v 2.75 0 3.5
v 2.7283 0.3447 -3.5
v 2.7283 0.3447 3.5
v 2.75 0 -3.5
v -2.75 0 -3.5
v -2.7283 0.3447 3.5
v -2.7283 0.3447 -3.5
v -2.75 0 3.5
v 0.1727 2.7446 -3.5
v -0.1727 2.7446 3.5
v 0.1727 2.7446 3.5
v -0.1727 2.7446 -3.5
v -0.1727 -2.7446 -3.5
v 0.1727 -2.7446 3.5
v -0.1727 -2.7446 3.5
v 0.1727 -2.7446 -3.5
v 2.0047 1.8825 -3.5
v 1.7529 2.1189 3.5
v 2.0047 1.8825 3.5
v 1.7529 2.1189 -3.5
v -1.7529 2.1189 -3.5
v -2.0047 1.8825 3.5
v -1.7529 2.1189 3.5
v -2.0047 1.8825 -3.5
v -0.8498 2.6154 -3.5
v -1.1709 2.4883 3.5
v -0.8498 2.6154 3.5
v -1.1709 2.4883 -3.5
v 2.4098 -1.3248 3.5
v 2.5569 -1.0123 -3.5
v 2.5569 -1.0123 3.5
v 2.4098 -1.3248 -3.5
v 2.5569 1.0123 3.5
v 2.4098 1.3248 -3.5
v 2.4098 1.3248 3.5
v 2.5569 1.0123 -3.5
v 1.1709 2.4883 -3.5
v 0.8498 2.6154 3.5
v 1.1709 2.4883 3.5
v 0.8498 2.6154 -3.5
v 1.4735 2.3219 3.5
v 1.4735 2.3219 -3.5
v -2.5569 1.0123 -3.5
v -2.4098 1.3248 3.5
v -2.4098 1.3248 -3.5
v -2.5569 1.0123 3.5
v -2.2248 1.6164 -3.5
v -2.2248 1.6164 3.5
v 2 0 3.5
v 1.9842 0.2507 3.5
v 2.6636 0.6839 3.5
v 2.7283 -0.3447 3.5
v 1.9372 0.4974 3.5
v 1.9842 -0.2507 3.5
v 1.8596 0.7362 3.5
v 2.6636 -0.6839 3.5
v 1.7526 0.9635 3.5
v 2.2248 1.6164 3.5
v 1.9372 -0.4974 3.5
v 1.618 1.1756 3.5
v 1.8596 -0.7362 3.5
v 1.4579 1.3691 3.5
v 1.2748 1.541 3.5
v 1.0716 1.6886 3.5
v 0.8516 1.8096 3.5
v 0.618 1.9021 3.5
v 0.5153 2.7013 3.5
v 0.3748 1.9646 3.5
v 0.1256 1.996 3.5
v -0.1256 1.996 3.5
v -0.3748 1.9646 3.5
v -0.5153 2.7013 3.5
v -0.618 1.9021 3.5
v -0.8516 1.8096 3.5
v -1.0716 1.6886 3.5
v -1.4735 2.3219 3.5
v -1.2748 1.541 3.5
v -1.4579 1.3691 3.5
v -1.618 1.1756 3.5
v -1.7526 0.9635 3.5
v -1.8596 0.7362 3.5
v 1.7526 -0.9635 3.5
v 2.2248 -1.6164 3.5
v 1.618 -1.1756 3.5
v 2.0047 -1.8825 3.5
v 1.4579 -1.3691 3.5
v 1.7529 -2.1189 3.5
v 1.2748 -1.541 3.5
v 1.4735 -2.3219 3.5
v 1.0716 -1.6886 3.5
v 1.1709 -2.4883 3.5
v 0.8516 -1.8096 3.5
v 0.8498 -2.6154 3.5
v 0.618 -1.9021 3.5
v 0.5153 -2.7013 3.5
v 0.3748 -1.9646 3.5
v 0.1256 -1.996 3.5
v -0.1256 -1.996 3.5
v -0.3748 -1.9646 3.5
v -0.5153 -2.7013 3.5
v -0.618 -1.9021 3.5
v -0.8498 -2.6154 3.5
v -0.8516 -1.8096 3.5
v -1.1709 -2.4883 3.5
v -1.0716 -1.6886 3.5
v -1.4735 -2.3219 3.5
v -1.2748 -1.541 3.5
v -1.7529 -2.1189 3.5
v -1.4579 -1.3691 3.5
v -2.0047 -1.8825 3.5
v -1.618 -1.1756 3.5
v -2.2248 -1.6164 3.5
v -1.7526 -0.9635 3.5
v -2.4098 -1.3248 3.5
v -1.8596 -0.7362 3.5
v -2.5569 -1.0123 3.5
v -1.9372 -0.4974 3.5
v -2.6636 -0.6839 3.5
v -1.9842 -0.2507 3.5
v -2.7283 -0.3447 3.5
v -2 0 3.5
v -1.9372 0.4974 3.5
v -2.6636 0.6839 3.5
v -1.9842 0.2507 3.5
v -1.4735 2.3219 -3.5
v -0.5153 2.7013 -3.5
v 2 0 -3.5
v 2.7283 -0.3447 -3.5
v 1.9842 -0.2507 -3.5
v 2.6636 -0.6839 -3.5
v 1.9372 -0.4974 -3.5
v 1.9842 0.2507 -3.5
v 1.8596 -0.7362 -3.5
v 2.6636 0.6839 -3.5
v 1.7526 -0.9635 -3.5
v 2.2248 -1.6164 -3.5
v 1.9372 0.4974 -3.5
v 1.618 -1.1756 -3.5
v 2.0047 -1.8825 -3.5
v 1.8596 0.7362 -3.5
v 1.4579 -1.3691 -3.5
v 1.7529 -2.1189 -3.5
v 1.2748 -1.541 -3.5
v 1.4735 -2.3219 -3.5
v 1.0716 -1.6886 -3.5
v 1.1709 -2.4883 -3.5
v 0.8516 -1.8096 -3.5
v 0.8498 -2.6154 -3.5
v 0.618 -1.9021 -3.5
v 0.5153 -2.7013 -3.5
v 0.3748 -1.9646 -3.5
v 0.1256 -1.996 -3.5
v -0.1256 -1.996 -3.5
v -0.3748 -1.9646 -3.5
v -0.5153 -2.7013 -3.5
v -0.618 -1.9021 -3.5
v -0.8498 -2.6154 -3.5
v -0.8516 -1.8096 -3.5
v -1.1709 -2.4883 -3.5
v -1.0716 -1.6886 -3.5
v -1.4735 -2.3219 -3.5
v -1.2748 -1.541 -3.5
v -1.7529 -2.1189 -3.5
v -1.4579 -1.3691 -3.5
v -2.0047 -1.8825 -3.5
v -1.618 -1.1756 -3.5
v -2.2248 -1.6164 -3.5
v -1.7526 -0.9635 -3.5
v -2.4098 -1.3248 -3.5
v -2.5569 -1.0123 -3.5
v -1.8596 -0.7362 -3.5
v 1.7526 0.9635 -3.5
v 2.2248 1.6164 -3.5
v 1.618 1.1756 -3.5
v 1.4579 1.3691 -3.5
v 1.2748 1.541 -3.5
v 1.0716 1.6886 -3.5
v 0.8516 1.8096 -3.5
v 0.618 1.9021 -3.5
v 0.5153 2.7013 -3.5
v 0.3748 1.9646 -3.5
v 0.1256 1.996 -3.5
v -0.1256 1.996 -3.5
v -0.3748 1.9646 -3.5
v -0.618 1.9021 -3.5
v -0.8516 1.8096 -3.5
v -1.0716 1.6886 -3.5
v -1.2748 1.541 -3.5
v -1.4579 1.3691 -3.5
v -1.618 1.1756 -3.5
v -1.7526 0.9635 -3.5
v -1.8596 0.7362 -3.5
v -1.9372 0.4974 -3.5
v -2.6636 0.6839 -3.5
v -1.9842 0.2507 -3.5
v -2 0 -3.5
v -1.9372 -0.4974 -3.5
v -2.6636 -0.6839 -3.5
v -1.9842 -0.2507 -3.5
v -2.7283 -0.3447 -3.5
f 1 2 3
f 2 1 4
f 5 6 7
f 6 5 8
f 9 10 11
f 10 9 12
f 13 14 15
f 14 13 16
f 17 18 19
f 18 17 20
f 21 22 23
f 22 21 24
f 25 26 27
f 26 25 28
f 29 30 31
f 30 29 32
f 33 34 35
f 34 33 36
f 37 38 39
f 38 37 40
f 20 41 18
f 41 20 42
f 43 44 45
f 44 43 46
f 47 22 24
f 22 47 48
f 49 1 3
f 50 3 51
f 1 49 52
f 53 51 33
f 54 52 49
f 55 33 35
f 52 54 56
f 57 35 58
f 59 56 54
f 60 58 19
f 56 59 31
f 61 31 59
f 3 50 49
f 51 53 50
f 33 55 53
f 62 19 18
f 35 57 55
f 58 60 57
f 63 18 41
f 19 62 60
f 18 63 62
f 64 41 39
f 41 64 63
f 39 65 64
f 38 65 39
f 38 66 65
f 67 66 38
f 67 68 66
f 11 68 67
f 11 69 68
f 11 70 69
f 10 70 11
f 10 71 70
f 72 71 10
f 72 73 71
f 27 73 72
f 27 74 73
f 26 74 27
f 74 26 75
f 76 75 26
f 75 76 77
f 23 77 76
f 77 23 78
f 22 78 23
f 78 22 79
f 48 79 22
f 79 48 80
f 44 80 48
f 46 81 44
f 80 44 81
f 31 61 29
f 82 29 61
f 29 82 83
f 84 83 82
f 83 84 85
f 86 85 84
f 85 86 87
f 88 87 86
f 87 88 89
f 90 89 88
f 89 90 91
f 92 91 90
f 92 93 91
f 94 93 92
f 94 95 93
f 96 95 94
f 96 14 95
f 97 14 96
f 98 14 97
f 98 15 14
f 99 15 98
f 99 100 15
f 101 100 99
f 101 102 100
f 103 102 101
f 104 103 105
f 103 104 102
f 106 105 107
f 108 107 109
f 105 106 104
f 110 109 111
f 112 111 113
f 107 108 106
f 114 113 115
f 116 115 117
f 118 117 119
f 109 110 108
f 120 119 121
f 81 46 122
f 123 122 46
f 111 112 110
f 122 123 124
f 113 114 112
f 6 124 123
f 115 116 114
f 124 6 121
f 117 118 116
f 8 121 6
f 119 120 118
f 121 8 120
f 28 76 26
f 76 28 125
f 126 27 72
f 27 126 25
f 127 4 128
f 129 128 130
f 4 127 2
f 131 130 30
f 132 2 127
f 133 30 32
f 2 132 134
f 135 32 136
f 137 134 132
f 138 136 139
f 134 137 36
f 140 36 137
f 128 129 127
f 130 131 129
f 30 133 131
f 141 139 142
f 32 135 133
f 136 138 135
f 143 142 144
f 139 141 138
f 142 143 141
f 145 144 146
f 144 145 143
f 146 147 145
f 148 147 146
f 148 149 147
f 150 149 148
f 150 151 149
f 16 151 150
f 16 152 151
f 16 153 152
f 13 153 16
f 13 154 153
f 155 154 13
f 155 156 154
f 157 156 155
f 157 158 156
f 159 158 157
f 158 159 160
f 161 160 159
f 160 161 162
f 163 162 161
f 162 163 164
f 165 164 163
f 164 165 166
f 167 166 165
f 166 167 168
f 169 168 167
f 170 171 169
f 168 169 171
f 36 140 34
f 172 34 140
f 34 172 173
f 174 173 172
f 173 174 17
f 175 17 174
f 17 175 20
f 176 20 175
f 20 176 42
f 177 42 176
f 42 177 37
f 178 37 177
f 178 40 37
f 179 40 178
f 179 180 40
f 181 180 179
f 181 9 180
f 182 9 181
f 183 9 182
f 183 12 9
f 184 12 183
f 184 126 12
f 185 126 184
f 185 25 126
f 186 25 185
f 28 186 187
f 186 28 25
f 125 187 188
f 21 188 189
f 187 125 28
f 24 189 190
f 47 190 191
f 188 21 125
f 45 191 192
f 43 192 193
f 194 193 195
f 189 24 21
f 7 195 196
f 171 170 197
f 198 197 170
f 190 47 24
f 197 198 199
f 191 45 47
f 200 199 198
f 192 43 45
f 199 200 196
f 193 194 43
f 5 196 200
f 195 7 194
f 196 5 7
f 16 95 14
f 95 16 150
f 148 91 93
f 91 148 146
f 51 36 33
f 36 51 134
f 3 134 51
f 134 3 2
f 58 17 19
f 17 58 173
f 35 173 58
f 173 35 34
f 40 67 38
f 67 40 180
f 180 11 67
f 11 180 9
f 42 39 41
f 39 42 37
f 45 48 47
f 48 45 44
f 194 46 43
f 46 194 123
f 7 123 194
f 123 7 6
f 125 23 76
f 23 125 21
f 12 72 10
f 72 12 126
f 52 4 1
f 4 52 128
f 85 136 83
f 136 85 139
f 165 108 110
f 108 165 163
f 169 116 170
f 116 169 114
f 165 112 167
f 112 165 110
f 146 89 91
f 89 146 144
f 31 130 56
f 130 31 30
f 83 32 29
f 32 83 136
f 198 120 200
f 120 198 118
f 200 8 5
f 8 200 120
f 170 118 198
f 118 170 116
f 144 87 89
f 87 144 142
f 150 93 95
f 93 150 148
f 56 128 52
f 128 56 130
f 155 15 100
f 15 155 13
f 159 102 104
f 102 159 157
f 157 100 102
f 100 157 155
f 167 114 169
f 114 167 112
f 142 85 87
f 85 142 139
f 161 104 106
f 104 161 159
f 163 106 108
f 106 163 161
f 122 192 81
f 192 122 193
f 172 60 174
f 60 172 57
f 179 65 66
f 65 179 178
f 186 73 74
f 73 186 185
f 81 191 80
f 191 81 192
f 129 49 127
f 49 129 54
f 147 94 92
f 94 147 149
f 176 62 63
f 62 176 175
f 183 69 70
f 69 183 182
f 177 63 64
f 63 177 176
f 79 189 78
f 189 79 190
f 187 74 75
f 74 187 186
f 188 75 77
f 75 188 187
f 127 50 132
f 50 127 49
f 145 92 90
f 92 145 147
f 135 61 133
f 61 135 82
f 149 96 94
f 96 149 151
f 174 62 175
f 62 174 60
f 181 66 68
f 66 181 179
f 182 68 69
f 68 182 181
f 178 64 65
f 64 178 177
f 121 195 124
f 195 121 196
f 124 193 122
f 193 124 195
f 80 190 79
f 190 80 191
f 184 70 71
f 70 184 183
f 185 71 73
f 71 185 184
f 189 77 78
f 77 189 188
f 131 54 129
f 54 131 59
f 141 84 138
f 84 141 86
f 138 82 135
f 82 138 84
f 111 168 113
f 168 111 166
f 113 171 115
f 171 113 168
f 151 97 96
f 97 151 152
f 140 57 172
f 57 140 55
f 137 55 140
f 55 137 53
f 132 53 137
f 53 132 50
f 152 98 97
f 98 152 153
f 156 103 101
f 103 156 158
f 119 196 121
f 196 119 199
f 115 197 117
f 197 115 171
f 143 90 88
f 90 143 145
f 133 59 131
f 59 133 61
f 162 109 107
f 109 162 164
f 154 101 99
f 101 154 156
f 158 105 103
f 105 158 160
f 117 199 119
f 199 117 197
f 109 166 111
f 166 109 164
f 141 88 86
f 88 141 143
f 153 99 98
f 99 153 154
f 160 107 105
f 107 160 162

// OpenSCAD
$fn = 50;


difference() {
	union() {
		translate(v = [0, 0, -3.5000000000]) {
			cylinder(h = 7, r = 2.7500000000);
		}
	}
	union() {
		translate(v = [0, 0, -100.0000000000]) {
			cylinder(h = 200, r = 2.0000000000);
		}
	}
}
